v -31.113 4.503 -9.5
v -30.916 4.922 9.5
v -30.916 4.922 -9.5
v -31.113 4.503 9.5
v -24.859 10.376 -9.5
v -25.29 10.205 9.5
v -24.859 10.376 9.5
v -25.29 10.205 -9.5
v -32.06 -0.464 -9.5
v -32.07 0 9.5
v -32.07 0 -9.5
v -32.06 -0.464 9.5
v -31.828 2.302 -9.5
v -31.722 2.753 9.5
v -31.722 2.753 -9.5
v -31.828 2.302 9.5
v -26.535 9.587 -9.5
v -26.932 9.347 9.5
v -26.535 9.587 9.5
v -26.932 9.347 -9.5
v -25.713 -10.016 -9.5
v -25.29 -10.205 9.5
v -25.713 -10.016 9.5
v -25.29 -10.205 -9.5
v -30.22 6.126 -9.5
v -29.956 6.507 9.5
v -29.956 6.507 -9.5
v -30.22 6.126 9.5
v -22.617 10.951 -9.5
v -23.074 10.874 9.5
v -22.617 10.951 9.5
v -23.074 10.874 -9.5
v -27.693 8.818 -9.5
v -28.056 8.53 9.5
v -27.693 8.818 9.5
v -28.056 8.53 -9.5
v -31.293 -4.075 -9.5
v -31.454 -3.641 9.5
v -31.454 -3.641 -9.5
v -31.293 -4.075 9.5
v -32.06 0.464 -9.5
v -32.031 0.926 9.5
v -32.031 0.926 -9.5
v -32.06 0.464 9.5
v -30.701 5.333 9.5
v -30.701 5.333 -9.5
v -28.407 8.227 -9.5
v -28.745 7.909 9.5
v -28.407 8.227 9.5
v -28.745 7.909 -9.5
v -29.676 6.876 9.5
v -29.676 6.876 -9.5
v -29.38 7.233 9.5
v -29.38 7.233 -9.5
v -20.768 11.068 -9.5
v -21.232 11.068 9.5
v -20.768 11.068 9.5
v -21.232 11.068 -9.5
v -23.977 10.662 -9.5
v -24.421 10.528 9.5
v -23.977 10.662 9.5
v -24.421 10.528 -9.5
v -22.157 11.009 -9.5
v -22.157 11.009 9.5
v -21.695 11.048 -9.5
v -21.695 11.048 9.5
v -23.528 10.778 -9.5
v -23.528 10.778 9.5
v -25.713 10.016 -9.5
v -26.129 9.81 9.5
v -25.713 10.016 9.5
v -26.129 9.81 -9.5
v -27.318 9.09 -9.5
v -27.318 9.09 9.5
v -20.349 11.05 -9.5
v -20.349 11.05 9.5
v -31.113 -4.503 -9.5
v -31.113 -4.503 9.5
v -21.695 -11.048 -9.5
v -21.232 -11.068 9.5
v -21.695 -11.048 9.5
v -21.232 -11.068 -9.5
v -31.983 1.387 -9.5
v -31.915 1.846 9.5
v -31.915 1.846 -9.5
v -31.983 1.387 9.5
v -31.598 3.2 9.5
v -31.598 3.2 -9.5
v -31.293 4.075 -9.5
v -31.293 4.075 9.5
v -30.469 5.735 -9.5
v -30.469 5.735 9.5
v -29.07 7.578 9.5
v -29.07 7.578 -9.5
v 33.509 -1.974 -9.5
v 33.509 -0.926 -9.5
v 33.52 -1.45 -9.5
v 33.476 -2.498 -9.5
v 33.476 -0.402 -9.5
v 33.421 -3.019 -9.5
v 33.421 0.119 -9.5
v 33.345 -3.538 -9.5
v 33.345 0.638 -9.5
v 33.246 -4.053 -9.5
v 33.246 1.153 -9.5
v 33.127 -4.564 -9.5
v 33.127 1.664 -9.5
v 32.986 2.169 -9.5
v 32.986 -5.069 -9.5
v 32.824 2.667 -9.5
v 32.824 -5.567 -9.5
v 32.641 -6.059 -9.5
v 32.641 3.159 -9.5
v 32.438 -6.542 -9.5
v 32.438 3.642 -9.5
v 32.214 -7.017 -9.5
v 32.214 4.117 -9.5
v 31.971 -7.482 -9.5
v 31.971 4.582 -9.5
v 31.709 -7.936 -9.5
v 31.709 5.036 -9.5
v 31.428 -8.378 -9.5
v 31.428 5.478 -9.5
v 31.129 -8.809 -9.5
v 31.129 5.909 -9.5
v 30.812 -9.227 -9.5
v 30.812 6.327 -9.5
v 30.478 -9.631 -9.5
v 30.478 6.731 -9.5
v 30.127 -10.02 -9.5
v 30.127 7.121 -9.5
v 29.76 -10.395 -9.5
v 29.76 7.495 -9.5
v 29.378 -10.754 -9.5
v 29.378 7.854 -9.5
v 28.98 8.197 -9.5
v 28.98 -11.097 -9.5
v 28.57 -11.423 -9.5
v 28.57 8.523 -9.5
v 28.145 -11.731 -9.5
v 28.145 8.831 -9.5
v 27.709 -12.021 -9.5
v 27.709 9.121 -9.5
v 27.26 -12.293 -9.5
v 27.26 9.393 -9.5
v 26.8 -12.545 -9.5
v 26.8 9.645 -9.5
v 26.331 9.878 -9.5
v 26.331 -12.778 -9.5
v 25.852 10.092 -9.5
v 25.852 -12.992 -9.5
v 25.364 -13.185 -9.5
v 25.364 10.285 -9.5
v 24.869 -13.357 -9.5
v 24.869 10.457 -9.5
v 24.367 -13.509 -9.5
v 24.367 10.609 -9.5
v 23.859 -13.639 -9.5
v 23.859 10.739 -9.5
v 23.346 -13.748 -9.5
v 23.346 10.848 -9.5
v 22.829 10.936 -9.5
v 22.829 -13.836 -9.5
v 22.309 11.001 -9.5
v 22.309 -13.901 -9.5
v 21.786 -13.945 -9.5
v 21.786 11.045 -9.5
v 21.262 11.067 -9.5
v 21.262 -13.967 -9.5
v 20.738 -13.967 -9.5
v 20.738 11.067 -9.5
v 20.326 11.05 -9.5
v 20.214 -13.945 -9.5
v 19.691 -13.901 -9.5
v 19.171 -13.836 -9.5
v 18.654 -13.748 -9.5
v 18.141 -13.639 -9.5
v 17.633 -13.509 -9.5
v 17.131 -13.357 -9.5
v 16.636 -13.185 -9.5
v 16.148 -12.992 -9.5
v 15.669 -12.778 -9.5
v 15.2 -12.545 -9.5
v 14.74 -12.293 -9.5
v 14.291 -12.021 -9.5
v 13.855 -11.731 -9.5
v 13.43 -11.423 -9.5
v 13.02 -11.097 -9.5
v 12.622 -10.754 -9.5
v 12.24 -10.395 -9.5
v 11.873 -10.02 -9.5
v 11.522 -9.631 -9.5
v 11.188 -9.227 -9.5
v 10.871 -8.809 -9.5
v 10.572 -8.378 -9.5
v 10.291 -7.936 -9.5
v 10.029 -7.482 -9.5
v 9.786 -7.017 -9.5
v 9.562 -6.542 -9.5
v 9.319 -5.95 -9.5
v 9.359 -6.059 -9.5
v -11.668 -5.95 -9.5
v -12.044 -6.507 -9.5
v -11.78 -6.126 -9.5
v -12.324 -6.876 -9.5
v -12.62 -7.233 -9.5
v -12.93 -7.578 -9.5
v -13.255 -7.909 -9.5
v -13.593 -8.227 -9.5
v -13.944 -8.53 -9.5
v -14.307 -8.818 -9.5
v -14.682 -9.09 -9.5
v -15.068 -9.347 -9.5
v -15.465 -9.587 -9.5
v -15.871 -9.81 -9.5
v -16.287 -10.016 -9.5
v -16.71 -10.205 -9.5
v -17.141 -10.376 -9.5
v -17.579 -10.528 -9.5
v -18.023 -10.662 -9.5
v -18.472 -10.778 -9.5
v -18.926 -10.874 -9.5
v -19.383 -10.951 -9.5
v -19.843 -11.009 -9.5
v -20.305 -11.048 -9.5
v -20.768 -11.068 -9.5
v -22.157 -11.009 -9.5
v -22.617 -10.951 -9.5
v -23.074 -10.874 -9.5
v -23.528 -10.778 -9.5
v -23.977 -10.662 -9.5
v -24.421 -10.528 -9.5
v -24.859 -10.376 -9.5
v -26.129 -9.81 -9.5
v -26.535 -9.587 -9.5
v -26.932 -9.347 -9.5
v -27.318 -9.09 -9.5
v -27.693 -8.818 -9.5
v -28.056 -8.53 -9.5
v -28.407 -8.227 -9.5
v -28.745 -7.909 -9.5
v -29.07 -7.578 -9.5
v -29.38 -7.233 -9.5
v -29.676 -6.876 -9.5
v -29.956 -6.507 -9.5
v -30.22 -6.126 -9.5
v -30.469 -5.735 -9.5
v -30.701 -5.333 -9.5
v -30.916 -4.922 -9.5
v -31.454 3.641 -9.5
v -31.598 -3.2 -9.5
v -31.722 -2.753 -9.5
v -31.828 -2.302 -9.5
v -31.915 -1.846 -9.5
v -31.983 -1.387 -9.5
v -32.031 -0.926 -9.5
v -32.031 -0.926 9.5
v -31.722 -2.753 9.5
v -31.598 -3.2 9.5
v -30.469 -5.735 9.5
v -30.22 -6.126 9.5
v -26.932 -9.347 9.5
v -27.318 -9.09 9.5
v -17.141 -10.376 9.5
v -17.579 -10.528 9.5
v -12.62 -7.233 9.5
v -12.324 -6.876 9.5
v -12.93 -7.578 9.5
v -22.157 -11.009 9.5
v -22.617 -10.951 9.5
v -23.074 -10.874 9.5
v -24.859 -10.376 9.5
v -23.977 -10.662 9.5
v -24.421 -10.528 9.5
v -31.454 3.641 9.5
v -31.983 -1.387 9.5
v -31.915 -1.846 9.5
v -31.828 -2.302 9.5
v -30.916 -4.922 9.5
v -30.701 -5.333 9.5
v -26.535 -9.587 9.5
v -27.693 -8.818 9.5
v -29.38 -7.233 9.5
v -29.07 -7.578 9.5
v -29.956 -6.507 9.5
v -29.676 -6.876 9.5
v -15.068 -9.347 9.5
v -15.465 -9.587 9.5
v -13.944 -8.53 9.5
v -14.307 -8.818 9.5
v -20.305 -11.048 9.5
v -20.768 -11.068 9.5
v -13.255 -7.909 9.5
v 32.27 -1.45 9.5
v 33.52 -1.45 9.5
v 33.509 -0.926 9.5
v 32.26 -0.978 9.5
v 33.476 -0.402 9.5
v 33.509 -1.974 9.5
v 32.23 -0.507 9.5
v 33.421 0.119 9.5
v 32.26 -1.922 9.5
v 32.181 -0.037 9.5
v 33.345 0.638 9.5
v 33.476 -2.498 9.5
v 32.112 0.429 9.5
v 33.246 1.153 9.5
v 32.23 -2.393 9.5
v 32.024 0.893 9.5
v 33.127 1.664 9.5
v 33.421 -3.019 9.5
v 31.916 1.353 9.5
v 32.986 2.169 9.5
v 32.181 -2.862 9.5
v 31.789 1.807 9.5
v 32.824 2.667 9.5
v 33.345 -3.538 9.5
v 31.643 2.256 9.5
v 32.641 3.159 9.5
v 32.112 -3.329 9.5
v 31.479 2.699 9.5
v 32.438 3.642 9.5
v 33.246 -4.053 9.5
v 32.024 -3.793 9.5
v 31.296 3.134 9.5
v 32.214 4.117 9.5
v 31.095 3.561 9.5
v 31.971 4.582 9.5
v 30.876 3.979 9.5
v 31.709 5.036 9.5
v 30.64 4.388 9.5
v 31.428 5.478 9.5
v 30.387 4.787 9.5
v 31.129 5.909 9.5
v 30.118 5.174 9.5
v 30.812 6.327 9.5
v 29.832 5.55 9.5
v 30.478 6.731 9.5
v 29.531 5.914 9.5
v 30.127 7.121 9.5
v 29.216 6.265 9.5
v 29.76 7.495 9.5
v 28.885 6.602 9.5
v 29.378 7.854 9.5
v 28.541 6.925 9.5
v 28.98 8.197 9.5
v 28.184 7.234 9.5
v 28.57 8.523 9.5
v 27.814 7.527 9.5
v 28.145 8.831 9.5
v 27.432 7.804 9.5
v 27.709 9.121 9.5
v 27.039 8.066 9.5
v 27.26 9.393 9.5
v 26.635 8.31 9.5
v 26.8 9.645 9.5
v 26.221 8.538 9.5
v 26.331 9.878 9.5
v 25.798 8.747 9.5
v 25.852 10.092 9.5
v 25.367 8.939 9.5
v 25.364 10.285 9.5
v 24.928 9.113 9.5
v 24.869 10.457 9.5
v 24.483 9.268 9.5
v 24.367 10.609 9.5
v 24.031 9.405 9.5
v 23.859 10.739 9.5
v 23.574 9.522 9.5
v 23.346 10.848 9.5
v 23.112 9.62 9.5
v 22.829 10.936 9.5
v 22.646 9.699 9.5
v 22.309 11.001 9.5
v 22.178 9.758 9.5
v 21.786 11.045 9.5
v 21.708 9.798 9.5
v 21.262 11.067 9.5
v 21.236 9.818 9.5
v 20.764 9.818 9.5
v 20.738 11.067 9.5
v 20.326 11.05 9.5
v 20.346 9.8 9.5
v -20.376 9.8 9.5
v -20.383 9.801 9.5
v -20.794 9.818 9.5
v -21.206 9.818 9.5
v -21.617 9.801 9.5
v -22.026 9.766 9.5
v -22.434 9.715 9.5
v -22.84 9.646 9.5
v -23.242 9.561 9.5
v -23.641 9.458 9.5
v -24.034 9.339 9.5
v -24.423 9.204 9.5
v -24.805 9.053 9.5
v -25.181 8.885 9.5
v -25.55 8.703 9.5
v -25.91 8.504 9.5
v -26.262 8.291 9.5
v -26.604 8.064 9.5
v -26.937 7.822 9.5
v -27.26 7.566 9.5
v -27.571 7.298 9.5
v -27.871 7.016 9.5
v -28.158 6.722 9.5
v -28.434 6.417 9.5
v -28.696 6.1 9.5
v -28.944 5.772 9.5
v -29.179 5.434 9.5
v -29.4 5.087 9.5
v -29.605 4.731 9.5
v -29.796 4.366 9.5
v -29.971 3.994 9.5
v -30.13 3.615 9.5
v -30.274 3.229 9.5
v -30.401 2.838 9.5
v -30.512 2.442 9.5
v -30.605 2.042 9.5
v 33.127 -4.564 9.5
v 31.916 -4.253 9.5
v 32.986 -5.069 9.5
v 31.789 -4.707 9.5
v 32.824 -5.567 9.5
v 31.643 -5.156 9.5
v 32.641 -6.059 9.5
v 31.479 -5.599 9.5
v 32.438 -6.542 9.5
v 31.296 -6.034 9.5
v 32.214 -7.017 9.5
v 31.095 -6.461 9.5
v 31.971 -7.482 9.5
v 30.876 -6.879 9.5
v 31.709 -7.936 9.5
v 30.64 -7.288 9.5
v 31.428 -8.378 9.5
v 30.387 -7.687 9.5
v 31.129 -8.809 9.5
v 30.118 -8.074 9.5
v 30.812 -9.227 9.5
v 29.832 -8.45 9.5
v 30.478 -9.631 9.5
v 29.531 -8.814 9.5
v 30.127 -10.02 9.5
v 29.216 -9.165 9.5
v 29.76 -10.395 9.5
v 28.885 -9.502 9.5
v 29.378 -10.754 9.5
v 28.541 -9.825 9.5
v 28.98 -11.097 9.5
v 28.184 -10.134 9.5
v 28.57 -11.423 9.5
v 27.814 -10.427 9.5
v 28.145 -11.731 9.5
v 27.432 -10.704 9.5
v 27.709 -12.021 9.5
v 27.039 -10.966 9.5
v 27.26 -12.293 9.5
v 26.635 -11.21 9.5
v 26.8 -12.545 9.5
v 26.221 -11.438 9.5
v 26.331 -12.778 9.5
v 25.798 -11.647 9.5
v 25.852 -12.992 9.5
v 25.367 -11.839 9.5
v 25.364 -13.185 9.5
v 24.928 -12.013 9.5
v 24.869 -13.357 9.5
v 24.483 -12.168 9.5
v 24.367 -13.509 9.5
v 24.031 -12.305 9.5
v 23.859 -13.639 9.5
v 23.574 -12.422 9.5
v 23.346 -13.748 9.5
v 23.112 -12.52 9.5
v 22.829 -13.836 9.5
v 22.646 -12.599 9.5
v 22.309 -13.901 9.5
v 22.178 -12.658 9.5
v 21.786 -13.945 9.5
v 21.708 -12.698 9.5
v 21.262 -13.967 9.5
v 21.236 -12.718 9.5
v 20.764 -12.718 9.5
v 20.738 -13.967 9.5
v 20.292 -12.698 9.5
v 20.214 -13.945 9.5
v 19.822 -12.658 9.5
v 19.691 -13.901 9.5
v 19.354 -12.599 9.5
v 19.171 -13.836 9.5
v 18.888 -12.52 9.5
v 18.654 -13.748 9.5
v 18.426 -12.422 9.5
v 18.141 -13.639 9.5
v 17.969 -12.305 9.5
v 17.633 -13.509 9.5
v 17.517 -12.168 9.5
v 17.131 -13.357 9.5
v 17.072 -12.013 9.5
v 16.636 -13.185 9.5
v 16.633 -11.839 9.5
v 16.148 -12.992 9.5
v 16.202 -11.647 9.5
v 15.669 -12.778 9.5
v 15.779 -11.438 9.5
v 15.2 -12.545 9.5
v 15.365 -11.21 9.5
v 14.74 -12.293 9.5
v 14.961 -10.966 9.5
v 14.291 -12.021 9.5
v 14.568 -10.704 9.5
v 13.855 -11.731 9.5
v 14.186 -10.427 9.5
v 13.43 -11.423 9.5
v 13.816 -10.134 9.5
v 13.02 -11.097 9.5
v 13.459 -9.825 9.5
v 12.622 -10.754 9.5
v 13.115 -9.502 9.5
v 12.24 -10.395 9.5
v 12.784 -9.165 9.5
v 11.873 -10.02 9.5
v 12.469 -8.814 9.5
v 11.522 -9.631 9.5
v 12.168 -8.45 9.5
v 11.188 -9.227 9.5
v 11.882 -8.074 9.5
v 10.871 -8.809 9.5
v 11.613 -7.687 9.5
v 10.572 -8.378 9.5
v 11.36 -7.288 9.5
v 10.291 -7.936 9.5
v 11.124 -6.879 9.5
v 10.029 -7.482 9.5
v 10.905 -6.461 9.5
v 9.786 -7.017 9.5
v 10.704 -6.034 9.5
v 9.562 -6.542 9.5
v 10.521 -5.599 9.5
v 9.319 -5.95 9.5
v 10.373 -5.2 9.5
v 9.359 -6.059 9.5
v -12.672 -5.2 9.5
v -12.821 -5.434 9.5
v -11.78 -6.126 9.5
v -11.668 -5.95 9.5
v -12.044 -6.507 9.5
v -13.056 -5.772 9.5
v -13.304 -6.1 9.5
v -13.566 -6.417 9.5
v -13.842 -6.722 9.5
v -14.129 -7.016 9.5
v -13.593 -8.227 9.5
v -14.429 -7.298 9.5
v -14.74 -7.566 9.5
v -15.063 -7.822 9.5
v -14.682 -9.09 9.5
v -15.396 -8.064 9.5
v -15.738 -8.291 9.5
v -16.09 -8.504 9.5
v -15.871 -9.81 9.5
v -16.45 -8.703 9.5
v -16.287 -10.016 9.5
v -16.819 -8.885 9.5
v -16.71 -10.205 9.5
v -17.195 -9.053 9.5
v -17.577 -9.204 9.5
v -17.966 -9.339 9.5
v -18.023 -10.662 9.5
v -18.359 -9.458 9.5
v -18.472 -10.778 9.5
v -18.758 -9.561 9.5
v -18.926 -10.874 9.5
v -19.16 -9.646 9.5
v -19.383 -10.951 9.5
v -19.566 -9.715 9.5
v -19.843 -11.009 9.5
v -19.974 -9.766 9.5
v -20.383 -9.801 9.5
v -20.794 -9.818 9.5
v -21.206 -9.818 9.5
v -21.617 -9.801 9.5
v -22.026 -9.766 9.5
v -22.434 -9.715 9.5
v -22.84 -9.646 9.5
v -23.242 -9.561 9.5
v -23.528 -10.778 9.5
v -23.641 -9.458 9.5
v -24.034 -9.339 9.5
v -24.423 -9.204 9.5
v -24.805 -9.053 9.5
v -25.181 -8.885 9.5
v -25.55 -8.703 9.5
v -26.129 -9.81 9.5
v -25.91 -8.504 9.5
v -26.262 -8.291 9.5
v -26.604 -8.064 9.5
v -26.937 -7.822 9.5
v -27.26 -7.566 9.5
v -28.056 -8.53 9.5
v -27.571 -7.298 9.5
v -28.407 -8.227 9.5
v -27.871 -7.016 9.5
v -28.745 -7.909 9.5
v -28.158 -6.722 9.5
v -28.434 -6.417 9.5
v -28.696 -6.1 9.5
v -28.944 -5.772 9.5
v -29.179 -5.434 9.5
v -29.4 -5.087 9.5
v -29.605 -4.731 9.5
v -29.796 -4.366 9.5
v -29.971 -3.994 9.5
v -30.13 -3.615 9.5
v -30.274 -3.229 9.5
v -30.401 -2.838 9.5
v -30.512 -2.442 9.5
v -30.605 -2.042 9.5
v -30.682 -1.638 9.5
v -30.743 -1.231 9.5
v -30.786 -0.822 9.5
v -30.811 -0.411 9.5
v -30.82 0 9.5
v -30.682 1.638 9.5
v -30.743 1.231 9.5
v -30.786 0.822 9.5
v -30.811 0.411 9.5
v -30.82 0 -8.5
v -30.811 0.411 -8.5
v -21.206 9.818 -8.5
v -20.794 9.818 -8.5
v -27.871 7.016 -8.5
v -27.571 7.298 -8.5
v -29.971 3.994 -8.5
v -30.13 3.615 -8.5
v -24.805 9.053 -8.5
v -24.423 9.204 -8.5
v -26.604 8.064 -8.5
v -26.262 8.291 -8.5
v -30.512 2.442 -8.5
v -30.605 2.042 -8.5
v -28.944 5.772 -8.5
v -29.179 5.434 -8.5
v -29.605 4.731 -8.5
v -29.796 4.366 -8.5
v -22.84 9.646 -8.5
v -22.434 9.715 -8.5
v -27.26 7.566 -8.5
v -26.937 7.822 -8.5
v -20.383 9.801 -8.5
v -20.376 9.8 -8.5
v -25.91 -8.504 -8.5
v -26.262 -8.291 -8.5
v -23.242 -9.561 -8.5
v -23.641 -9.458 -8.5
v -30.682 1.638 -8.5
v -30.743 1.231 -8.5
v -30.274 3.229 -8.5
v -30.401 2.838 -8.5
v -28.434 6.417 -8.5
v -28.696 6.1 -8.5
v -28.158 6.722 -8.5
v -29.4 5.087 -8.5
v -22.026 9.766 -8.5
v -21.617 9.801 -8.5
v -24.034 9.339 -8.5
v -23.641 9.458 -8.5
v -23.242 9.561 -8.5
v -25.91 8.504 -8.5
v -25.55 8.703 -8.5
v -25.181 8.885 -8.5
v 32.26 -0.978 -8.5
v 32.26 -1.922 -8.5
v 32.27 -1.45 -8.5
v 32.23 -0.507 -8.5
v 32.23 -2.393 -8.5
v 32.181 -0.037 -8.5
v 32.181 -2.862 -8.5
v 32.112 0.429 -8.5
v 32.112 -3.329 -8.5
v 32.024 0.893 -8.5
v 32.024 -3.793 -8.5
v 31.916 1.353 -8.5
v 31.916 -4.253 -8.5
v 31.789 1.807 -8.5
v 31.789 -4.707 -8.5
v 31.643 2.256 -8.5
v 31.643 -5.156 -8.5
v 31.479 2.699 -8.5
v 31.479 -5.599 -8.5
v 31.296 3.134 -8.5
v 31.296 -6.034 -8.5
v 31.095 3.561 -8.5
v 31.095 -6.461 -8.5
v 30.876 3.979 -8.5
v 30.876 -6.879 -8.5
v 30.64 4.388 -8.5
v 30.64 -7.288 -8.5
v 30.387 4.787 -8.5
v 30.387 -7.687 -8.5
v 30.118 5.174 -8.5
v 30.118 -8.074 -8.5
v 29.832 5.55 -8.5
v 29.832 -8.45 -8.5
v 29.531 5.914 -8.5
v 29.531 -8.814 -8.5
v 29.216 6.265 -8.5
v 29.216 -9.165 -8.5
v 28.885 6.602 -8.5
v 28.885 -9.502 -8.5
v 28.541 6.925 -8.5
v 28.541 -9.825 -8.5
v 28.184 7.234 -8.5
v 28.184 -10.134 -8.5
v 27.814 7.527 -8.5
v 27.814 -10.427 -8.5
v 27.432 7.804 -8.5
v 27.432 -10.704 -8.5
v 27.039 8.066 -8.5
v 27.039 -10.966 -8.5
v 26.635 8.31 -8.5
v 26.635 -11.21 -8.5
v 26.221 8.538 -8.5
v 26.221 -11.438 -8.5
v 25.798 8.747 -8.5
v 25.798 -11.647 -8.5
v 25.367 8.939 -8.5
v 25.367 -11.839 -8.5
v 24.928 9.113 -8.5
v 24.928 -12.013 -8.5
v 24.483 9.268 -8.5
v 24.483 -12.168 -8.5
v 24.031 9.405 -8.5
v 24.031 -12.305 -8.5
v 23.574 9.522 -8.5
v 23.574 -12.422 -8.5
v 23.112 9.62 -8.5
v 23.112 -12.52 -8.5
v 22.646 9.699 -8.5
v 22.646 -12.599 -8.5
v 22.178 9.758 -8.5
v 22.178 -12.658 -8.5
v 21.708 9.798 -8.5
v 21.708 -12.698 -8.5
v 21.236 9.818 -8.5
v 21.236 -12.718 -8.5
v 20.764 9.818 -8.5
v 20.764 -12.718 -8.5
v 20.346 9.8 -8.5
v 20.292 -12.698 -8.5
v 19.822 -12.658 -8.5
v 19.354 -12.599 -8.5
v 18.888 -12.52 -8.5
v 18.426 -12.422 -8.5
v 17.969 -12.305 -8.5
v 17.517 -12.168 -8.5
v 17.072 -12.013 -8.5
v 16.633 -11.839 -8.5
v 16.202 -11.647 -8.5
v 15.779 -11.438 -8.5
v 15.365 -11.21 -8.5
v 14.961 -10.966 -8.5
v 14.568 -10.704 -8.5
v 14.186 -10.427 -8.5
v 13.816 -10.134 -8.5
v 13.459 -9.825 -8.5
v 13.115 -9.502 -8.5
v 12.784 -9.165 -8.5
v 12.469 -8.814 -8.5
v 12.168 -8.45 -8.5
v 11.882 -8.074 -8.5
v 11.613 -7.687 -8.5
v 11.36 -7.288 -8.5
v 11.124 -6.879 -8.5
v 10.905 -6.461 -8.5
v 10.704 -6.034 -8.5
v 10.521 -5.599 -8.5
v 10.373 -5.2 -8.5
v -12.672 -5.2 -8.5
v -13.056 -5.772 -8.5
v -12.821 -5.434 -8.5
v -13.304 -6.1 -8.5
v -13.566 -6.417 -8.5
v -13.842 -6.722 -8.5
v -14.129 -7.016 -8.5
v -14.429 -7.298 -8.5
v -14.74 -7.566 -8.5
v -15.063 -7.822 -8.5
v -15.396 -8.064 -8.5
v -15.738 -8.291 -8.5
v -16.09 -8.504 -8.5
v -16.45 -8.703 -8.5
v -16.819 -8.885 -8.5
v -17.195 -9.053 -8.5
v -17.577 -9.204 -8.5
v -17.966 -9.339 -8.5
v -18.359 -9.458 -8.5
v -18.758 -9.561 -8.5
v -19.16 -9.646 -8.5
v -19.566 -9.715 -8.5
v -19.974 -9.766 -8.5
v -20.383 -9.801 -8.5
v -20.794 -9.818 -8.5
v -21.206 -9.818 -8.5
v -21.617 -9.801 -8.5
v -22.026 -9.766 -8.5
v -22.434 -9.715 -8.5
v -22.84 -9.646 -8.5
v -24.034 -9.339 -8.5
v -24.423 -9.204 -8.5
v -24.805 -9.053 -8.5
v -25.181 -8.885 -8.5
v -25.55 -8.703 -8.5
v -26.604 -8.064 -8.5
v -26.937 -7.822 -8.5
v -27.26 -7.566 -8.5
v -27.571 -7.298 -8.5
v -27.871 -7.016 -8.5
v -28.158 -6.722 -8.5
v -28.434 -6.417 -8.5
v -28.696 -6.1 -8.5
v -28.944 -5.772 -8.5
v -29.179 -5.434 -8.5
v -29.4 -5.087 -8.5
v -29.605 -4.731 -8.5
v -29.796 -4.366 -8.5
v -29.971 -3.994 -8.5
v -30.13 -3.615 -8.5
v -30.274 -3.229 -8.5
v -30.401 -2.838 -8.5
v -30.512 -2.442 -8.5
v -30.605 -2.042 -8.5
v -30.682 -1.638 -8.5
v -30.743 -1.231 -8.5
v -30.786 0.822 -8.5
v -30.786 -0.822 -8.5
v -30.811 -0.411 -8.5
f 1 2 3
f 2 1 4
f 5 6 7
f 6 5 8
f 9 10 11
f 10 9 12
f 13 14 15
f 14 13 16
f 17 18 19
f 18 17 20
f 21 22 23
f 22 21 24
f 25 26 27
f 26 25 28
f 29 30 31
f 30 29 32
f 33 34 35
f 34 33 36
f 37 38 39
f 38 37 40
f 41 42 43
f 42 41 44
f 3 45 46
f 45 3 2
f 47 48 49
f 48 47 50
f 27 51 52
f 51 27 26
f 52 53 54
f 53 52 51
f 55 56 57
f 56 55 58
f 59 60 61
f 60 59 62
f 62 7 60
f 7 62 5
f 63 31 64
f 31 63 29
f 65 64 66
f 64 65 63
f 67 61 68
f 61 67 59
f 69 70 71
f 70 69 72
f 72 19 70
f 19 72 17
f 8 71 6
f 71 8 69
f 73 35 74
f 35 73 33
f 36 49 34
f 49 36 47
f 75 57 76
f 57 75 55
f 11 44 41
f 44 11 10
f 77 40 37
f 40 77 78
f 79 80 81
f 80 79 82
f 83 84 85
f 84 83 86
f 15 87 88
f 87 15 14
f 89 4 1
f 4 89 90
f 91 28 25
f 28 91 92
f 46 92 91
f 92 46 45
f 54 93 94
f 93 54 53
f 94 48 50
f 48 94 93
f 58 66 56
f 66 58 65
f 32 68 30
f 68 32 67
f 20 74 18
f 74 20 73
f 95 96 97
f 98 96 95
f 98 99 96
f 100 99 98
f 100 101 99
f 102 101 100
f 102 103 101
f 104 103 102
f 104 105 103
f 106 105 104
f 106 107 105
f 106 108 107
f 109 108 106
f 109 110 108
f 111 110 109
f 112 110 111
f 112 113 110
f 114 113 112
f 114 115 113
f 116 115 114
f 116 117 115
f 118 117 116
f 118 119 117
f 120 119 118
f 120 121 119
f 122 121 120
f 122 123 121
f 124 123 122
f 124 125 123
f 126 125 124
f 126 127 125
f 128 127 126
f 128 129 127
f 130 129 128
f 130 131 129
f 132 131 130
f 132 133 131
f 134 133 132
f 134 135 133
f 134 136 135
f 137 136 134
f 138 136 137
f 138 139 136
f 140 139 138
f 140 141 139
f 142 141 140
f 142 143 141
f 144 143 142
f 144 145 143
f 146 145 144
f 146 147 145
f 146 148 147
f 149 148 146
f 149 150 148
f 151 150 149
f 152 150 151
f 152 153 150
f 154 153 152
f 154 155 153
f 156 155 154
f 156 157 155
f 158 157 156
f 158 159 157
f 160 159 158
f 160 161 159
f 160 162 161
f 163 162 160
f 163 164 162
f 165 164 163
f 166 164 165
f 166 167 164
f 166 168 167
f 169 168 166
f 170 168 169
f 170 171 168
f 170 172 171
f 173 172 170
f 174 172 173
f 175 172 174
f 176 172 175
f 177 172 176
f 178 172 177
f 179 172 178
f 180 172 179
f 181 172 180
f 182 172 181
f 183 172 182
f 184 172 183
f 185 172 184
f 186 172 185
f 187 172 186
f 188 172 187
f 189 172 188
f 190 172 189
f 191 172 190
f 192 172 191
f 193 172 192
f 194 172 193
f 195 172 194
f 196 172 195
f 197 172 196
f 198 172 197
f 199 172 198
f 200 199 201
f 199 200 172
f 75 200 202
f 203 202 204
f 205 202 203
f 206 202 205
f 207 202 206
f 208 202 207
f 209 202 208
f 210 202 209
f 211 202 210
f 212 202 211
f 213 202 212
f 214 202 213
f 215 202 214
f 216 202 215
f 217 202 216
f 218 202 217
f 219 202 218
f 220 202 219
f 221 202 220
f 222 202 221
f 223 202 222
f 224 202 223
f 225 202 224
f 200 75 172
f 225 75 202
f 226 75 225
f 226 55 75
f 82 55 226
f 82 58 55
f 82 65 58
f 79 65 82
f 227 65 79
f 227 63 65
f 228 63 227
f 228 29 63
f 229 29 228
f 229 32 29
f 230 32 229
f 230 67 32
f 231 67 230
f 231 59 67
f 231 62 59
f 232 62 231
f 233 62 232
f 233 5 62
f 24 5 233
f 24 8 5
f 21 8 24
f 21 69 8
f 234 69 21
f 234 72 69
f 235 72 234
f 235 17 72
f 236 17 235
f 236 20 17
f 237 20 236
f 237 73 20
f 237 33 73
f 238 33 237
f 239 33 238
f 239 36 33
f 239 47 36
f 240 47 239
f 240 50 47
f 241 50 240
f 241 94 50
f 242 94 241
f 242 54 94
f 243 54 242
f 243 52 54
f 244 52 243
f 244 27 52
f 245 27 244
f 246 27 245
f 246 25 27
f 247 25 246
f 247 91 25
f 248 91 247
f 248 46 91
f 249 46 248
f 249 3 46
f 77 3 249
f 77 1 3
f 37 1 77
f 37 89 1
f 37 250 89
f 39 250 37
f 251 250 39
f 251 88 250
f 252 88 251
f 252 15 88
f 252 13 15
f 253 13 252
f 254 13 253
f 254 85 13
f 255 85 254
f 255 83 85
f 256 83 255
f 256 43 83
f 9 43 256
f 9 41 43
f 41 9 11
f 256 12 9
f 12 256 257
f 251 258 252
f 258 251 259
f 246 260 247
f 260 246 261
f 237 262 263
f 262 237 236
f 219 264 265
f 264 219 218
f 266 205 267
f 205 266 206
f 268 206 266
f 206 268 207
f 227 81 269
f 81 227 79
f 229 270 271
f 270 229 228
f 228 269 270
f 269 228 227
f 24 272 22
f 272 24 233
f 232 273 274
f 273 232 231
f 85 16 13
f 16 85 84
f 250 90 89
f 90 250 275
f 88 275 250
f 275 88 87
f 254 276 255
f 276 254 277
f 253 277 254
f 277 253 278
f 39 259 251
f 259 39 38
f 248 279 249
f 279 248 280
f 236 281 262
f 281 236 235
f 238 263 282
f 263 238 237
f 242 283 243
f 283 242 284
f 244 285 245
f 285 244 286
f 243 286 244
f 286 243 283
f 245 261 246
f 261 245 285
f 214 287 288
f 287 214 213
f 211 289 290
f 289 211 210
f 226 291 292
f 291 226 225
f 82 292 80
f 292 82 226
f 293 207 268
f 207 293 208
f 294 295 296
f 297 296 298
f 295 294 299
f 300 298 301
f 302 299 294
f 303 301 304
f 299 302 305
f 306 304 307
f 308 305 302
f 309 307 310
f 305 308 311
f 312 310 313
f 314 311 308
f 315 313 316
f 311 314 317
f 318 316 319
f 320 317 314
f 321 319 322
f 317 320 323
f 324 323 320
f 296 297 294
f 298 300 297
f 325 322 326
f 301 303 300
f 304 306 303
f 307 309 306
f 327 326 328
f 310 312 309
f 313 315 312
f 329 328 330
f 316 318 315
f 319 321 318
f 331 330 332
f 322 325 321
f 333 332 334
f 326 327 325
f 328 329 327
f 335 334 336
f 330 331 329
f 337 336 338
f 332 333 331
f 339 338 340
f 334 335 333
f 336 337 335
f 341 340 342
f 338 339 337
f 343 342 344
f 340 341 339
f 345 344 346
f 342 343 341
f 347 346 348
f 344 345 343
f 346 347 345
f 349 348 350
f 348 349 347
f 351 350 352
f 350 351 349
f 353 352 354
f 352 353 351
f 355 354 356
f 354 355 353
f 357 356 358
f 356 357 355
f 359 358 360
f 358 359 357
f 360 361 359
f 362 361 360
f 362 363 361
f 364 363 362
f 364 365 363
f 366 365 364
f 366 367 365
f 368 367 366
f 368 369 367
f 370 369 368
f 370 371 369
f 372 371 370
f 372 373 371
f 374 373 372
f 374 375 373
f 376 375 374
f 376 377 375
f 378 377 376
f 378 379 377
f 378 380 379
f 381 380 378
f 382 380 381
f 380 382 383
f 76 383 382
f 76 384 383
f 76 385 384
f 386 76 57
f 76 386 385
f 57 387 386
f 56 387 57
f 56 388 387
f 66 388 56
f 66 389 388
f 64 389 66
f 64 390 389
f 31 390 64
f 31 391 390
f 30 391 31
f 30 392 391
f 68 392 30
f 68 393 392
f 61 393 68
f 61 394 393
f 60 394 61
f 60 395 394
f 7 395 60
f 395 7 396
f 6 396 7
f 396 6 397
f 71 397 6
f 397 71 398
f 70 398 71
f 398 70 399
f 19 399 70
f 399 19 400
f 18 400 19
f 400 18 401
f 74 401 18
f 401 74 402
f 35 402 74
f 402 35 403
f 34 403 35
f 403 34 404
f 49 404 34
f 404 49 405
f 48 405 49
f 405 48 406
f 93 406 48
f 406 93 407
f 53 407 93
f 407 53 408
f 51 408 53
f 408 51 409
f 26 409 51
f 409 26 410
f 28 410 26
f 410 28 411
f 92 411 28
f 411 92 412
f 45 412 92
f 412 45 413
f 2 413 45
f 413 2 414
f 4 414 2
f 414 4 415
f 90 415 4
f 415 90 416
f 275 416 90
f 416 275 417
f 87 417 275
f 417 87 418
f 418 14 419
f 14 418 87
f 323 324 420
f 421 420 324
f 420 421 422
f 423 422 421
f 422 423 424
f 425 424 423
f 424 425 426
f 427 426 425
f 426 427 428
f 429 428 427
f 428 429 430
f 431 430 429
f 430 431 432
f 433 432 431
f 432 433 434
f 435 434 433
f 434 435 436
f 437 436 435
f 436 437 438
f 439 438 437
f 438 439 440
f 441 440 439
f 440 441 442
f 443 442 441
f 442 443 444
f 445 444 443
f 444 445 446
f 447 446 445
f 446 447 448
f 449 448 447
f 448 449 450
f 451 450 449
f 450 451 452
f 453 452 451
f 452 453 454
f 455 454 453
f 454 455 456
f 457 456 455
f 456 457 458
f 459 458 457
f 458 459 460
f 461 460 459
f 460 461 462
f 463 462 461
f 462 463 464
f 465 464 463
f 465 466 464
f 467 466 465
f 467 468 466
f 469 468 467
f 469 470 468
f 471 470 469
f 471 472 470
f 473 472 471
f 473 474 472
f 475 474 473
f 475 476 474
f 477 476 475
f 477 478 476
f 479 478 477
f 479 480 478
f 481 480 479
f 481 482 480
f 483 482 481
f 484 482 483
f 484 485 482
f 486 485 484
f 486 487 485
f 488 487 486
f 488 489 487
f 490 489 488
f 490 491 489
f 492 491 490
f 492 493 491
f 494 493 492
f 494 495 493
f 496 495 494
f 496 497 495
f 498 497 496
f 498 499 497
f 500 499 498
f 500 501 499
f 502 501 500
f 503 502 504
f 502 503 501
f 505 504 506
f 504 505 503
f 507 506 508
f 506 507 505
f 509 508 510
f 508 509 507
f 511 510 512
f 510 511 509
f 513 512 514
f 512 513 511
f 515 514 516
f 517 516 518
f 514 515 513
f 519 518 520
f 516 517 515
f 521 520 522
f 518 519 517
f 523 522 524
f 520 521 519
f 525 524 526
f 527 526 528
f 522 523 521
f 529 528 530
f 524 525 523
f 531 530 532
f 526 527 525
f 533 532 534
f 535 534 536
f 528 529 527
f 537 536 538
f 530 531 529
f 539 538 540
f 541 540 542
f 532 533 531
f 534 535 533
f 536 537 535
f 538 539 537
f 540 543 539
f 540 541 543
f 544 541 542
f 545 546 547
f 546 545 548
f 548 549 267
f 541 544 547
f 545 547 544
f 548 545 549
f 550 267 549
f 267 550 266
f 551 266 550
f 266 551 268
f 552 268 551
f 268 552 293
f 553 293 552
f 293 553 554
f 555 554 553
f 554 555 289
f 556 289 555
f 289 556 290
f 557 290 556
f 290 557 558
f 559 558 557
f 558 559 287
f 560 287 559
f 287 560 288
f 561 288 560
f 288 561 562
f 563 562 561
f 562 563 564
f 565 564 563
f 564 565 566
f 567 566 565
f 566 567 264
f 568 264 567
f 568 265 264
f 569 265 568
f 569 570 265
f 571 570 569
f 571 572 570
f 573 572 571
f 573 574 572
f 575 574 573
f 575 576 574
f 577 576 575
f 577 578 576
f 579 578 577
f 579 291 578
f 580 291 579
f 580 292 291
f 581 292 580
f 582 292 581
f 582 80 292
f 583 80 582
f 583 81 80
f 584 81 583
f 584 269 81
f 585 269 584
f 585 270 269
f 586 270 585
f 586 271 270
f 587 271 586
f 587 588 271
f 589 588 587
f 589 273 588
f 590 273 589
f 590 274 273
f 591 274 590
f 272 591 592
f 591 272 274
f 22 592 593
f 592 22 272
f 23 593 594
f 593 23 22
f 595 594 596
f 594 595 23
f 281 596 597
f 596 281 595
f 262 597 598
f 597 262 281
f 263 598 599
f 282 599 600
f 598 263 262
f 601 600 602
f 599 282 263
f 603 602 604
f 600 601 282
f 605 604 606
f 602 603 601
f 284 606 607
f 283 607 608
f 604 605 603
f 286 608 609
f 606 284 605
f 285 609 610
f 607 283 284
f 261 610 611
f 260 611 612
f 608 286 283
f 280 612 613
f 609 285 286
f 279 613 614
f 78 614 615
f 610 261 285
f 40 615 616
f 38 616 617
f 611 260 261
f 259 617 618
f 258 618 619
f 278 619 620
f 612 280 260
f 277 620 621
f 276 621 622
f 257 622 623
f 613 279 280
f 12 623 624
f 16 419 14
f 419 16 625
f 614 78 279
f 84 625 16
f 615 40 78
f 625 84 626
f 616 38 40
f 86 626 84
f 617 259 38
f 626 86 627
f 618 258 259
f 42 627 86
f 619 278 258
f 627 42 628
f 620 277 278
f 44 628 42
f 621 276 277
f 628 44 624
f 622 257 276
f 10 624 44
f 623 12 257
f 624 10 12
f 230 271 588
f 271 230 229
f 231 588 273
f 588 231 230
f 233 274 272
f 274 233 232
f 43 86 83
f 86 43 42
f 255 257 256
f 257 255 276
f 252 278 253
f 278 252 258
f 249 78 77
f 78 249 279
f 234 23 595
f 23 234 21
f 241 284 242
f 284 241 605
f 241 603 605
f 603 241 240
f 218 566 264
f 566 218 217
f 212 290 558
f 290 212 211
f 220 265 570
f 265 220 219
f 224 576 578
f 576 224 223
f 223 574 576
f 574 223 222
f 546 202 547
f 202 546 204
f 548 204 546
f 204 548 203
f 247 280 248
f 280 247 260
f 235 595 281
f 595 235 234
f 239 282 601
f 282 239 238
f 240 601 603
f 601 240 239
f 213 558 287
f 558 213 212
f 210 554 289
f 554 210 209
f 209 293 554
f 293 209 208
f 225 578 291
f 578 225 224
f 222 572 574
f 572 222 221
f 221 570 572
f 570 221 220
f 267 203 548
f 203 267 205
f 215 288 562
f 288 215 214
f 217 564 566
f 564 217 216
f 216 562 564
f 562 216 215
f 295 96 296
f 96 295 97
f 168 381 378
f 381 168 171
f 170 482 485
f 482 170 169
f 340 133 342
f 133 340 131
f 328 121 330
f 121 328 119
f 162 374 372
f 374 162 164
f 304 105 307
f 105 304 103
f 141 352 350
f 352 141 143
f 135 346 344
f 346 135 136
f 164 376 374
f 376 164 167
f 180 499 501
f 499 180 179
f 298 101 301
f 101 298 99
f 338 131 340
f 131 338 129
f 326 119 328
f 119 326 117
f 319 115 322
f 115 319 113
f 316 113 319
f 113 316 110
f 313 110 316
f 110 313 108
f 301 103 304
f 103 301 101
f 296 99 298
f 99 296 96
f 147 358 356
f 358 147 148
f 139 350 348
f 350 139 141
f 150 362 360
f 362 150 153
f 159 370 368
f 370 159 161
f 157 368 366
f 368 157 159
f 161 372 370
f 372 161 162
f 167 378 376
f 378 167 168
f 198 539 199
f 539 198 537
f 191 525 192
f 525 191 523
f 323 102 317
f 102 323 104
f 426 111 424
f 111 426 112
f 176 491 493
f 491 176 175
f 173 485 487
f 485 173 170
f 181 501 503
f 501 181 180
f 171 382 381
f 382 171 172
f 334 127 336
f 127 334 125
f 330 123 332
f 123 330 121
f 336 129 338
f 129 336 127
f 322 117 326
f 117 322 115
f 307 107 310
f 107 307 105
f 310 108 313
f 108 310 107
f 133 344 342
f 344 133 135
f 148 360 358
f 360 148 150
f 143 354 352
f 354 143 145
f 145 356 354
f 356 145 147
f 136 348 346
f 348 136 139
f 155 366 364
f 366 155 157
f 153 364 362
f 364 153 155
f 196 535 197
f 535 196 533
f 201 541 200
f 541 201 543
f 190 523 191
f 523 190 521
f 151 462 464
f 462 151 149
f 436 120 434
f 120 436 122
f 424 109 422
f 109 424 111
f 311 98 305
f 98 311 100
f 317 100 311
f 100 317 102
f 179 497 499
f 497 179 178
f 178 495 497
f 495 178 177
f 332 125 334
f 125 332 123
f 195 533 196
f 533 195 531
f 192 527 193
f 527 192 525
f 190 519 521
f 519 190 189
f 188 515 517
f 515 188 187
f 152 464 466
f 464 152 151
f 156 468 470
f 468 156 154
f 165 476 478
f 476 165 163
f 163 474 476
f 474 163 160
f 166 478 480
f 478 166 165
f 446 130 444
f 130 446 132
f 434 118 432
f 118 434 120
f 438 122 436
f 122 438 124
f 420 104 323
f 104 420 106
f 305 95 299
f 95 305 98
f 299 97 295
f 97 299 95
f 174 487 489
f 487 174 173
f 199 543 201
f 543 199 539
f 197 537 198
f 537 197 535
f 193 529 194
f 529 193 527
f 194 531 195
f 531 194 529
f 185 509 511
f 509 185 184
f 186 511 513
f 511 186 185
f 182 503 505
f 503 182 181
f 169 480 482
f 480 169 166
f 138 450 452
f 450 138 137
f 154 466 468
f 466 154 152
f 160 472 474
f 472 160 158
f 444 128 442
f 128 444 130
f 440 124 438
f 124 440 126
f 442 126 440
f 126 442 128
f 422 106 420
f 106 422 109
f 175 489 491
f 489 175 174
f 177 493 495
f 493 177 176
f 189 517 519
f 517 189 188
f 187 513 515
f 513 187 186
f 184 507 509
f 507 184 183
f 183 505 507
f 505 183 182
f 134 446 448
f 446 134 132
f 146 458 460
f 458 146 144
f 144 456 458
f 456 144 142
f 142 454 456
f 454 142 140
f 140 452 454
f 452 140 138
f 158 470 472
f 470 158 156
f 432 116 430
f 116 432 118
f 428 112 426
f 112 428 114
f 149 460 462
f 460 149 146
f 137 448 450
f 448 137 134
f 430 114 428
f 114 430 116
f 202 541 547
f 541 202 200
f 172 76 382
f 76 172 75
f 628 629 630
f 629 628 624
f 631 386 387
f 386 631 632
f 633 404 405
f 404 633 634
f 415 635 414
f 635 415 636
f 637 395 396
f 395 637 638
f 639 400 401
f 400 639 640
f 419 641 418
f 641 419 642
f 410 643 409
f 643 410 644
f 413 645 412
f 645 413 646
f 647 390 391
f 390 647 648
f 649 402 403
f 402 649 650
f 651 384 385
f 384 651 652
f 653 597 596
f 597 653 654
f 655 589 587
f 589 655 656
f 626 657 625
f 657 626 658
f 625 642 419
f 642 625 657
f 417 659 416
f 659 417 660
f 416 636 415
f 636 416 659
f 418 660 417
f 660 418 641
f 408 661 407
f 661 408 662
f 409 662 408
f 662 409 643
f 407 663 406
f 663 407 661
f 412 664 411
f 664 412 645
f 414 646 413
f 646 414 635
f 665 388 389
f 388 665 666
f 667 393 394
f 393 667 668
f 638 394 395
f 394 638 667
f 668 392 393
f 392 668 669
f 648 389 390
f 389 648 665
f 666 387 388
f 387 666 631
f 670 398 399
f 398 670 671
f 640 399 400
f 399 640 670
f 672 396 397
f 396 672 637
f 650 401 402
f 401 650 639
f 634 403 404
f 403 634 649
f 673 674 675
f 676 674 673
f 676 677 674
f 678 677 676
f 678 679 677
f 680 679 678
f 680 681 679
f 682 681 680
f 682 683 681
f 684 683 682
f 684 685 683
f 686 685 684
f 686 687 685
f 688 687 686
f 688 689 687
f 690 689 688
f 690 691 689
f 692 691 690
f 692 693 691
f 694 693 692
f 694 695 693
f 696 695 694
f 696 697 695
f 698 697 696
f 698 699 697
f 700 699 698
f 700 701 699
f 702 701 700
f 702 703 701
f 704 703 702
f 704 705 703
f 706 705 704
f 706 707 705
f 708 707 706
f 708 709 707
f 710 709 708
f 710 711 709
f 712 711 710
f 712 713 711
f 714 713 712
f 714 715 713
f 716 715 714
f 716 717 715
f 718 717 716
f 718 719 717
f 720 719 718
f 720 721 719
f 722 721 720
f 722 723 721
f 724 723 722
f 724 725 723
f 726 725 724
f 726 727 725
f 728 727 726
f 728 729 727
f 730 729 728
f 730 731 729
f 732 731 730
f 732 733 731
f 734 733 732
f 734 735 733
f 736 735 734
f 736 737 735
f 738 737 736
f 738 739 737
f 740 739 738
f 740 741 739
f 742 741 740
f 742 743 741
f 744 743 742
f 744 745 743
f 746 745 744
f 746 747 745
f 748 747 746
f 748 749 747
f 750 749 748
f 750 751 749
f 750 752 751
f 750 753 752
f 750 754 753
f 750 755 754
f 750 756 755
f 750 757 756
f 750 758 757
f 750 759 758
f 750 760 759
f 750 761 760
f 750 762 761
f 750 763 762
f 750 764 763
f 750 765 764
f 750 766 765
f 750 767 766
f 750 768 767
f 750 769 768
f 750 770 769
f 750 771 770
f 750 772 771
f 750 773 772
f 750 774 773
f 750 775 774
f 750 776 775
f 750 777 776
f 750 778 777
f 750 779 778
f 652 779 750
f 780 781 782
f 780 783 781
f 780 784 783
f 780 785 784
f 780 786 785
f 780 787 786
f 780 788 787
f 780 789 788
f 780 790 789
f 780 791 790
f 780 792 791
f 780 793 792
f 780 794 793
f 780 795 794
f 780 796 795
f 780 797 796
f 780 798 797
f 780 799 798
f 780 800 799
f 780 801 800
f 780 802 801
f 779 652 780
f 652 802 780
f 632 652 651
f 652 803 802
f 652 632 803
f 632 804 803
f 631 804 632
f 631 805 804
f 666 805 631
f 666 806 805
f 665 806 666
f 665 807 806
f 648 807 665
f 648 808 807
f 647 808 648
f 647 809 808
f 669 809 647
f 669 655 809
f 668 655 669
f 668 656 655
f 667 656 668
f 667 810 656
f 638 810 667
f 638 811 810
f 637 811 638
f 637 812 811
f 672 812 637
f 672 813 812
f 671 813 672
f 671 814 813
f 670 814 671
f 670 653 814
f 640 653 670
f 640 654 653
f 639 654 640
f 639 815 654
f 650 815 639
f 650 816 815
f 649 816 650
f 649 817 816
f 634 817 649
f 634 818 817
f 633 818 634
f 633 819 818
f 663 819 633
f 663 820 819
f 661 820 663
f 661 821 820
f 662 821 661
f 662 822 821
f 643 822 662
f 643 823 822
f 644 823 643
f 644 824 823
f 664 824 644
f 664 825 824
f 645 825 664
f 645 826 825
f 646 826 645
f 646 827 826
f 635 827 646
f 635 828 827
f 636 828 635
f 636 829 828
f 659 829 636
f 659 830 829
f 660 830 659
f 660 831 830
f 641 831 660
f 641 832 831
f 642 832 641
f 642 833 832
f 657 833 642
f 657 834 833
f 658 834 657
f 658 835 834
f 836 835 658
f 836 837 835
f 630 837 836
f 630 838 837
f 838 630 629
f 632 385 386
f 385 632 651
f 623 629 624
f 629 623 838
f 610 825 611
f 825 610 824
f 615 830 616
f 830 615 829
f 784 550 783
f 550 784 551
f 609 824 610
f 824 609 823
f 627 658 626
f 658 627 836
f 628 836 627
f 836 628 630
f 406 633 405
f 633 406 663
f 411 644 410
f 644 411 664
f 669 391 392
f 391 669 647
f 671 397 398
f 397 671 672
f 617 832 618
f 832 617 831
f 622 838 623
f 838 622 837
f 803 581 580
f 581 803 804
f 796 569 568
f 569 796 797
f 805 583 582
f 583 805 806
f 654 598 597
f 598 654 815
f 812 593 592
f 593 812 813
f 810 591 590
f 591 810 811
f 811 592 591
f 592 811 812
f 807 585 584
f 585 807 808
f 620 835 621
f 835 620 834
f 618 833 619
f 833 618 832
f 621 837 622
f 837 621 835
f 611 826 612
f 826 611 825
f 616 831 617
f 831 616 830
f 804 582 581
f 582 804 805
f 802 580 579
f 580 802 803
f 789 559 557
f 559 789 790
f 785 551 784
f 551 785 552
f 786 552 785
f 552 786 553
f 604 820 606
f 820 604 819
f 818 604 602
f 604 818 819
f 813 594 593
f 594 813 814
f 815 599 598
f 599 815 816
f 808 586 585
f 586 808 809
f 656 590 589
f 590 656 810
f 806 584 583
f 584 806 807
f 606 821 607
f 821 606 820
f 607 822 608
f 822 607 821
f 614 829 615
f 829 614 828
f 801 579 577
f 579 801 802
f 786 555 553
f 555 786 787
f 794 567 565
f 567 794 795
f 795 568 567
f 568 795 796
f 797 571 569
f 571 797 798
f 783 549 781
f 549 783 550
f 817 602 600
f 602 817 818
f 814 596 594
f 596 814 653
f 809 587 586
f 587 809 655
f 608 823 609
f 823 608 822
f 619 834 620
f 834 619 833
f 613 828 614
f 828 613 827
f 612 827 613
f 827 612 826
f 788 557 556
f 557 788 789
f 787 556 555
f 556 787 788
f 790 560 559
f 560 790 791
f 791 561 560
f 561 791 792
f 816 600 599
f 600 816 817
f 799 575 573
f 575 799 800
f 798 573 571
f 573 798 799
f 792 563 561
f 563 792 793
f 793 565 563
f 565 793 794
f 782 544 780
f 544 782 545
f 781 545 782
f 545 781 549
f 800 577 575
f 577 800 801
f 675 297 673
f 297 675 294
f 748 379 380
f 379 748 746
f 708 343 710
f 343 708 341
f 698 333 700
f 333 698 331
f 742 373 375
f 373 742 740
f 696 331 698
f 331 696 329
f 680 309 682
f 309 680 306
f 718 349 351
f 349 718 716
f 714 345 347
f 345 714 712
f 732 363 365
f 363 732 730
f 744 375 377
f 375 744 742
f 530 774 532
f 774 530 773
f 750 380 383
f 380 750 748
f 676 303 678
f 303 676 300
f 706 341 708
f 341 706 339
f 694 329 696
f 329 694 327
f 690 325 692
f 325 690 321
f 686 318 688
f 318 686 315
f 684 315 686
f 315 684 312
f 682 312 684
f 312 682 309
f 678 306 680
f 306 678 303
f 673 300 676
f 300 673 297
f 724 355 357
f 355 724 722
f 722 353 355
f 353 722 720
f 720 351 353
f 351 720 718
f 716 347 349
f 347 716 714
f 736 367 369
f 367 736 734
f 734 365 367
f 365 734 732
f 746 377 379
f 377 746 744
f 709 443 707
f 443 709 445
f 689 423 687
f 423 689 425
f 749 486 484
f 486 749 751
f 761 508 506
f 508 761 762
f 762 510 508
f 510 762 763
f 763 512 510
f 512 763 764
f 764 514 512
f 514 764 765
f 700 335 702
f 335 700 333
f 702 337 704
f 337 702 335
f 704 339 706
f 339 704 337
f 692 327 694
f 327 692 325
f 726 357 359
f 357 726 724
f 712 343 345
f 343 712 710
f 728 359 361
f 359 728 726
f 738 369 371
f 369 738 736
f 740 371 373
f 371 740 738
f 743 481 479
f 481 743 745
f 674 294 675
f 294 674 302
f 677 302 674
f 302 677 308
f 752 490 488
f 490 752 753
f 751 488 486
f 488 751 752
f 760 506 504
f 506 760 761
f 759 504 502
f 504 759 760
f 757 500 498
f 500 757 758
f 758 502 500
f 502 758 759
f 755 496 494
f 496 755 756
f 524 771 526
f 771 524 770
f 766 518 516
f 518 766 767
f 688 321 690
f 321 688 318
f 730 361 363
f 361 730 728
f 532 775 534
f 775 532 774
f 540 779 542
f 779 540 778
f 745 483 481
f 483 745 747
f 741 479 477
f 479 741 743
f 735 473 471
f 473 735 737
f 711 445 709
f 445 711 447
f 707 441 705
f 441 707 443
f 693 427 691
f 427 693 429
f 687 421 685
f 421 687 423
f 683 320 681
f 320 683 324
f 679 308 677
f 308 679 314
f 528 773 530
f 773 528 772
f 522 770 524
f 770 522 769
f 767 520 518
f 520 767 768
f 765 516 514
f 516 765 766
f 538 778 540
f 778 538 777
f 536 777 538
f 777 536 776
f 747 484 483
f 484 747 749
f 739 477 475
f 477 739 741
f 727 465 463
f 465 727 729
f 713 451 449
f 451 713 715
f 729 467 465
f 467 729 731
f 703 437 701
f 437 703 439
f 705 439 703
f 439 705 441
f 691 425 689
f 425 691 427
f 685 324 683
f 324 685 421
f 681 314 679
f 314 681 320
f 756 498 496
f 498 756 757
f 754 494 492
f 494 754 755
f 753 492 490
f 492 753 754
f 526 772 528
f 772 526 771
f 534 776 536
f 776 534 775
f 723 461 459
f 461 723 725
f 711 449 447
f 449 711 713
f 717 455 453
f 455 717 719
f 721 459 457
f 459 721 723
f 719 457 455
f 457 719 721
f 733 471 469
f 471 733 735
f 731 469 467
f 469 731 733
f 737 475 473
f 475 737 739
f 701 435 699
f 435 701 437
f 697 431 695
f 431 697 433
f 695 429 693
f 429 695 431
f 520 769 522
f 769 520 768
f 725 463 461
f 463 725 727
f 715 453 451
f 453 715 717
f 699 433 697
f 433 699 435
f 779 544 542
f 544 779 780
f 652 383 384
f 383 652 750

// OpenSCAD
// file: ../../libraries/Minolta16.scad
/**
 * Variables for the Minox16 camera
 **/

$fn = 150;

SPACING = 42;
WALL_THICKNESS = 1.25 + .5;

PLANE_BACK = 1.55;

CART_H = 16.85 + .75;

FEED_D = 19.14;
TAKEUP_D = 22.04;

TAKEUP_OFFSET_Y = -(TAKEUP_D - FEED_D) / 2;

CONNECT_X = SPACING - (TAKEUP_D / 2) - (FEED_D / 2) + 2;
CONNECT_Y = 8.85;
CONNECT_Z = 1.3;

CONNECT_OFFSET_X = ((TAKEUP_D / 2) - (FEED_D / 2)) / 2;
CONNECT_OFFSET_Y = (FEED_D / 2) - (CONNECT_Y / 2) - 5.02;
CONNECT_OFFSET_Z = -(CART_H / 2) + (CONNECT_Z / 2);

FILM_NEG_Y = .75;

FILM_NEG_OFFSET_Y = 8.5;

CAP_LIP_H = 5.92;
CAP_LIP = .56;
CAP_THICKNESS = .5;

TOP_H = 1;
// main file
include <../../libraries/Minolta16.scad>;

time=0;

module minolta16_cart_case () {
    H = 19;
    
    FOD = FEED_D + 3;
    FID = FEED_D + .5;
    TOD = TAKEUP_D + 3;
    TID = TAKEUP_D + .5;
    MID = 17;
    MID_OFFSET = 2.55;

    difference () {
        union () {
            translate([SPACING / 2, 0, 0]) cylinder(r = FOD / 2, h = H, center = true);
            translate([-SPACING / 2, TAKEUP_OFFSET_Y, 0]) cylinder(r = TOD / 2, h = H, center = true);
            translate([0, MID_OFFSET, 0]) cube([SPACING, MID, H], center = true);
        }
        translate([0, 0, -1]) union () {
            translate([SPACING / 2, 0, 0]) cylinder(r = FID / 2, h = H, center = true);
            translate([-SPACING / 2, TAKEUP_OFFSET_Y, 0]) cylinder(r = TID / 2, h = H, center = true);
            translate([0, MID_OFFSET - .25, 0]) cube([SPACING, MID - 2, H], center = true);
        }
    }
}

rotate([180, 0, time + 180]) minolta16_cart_case();
